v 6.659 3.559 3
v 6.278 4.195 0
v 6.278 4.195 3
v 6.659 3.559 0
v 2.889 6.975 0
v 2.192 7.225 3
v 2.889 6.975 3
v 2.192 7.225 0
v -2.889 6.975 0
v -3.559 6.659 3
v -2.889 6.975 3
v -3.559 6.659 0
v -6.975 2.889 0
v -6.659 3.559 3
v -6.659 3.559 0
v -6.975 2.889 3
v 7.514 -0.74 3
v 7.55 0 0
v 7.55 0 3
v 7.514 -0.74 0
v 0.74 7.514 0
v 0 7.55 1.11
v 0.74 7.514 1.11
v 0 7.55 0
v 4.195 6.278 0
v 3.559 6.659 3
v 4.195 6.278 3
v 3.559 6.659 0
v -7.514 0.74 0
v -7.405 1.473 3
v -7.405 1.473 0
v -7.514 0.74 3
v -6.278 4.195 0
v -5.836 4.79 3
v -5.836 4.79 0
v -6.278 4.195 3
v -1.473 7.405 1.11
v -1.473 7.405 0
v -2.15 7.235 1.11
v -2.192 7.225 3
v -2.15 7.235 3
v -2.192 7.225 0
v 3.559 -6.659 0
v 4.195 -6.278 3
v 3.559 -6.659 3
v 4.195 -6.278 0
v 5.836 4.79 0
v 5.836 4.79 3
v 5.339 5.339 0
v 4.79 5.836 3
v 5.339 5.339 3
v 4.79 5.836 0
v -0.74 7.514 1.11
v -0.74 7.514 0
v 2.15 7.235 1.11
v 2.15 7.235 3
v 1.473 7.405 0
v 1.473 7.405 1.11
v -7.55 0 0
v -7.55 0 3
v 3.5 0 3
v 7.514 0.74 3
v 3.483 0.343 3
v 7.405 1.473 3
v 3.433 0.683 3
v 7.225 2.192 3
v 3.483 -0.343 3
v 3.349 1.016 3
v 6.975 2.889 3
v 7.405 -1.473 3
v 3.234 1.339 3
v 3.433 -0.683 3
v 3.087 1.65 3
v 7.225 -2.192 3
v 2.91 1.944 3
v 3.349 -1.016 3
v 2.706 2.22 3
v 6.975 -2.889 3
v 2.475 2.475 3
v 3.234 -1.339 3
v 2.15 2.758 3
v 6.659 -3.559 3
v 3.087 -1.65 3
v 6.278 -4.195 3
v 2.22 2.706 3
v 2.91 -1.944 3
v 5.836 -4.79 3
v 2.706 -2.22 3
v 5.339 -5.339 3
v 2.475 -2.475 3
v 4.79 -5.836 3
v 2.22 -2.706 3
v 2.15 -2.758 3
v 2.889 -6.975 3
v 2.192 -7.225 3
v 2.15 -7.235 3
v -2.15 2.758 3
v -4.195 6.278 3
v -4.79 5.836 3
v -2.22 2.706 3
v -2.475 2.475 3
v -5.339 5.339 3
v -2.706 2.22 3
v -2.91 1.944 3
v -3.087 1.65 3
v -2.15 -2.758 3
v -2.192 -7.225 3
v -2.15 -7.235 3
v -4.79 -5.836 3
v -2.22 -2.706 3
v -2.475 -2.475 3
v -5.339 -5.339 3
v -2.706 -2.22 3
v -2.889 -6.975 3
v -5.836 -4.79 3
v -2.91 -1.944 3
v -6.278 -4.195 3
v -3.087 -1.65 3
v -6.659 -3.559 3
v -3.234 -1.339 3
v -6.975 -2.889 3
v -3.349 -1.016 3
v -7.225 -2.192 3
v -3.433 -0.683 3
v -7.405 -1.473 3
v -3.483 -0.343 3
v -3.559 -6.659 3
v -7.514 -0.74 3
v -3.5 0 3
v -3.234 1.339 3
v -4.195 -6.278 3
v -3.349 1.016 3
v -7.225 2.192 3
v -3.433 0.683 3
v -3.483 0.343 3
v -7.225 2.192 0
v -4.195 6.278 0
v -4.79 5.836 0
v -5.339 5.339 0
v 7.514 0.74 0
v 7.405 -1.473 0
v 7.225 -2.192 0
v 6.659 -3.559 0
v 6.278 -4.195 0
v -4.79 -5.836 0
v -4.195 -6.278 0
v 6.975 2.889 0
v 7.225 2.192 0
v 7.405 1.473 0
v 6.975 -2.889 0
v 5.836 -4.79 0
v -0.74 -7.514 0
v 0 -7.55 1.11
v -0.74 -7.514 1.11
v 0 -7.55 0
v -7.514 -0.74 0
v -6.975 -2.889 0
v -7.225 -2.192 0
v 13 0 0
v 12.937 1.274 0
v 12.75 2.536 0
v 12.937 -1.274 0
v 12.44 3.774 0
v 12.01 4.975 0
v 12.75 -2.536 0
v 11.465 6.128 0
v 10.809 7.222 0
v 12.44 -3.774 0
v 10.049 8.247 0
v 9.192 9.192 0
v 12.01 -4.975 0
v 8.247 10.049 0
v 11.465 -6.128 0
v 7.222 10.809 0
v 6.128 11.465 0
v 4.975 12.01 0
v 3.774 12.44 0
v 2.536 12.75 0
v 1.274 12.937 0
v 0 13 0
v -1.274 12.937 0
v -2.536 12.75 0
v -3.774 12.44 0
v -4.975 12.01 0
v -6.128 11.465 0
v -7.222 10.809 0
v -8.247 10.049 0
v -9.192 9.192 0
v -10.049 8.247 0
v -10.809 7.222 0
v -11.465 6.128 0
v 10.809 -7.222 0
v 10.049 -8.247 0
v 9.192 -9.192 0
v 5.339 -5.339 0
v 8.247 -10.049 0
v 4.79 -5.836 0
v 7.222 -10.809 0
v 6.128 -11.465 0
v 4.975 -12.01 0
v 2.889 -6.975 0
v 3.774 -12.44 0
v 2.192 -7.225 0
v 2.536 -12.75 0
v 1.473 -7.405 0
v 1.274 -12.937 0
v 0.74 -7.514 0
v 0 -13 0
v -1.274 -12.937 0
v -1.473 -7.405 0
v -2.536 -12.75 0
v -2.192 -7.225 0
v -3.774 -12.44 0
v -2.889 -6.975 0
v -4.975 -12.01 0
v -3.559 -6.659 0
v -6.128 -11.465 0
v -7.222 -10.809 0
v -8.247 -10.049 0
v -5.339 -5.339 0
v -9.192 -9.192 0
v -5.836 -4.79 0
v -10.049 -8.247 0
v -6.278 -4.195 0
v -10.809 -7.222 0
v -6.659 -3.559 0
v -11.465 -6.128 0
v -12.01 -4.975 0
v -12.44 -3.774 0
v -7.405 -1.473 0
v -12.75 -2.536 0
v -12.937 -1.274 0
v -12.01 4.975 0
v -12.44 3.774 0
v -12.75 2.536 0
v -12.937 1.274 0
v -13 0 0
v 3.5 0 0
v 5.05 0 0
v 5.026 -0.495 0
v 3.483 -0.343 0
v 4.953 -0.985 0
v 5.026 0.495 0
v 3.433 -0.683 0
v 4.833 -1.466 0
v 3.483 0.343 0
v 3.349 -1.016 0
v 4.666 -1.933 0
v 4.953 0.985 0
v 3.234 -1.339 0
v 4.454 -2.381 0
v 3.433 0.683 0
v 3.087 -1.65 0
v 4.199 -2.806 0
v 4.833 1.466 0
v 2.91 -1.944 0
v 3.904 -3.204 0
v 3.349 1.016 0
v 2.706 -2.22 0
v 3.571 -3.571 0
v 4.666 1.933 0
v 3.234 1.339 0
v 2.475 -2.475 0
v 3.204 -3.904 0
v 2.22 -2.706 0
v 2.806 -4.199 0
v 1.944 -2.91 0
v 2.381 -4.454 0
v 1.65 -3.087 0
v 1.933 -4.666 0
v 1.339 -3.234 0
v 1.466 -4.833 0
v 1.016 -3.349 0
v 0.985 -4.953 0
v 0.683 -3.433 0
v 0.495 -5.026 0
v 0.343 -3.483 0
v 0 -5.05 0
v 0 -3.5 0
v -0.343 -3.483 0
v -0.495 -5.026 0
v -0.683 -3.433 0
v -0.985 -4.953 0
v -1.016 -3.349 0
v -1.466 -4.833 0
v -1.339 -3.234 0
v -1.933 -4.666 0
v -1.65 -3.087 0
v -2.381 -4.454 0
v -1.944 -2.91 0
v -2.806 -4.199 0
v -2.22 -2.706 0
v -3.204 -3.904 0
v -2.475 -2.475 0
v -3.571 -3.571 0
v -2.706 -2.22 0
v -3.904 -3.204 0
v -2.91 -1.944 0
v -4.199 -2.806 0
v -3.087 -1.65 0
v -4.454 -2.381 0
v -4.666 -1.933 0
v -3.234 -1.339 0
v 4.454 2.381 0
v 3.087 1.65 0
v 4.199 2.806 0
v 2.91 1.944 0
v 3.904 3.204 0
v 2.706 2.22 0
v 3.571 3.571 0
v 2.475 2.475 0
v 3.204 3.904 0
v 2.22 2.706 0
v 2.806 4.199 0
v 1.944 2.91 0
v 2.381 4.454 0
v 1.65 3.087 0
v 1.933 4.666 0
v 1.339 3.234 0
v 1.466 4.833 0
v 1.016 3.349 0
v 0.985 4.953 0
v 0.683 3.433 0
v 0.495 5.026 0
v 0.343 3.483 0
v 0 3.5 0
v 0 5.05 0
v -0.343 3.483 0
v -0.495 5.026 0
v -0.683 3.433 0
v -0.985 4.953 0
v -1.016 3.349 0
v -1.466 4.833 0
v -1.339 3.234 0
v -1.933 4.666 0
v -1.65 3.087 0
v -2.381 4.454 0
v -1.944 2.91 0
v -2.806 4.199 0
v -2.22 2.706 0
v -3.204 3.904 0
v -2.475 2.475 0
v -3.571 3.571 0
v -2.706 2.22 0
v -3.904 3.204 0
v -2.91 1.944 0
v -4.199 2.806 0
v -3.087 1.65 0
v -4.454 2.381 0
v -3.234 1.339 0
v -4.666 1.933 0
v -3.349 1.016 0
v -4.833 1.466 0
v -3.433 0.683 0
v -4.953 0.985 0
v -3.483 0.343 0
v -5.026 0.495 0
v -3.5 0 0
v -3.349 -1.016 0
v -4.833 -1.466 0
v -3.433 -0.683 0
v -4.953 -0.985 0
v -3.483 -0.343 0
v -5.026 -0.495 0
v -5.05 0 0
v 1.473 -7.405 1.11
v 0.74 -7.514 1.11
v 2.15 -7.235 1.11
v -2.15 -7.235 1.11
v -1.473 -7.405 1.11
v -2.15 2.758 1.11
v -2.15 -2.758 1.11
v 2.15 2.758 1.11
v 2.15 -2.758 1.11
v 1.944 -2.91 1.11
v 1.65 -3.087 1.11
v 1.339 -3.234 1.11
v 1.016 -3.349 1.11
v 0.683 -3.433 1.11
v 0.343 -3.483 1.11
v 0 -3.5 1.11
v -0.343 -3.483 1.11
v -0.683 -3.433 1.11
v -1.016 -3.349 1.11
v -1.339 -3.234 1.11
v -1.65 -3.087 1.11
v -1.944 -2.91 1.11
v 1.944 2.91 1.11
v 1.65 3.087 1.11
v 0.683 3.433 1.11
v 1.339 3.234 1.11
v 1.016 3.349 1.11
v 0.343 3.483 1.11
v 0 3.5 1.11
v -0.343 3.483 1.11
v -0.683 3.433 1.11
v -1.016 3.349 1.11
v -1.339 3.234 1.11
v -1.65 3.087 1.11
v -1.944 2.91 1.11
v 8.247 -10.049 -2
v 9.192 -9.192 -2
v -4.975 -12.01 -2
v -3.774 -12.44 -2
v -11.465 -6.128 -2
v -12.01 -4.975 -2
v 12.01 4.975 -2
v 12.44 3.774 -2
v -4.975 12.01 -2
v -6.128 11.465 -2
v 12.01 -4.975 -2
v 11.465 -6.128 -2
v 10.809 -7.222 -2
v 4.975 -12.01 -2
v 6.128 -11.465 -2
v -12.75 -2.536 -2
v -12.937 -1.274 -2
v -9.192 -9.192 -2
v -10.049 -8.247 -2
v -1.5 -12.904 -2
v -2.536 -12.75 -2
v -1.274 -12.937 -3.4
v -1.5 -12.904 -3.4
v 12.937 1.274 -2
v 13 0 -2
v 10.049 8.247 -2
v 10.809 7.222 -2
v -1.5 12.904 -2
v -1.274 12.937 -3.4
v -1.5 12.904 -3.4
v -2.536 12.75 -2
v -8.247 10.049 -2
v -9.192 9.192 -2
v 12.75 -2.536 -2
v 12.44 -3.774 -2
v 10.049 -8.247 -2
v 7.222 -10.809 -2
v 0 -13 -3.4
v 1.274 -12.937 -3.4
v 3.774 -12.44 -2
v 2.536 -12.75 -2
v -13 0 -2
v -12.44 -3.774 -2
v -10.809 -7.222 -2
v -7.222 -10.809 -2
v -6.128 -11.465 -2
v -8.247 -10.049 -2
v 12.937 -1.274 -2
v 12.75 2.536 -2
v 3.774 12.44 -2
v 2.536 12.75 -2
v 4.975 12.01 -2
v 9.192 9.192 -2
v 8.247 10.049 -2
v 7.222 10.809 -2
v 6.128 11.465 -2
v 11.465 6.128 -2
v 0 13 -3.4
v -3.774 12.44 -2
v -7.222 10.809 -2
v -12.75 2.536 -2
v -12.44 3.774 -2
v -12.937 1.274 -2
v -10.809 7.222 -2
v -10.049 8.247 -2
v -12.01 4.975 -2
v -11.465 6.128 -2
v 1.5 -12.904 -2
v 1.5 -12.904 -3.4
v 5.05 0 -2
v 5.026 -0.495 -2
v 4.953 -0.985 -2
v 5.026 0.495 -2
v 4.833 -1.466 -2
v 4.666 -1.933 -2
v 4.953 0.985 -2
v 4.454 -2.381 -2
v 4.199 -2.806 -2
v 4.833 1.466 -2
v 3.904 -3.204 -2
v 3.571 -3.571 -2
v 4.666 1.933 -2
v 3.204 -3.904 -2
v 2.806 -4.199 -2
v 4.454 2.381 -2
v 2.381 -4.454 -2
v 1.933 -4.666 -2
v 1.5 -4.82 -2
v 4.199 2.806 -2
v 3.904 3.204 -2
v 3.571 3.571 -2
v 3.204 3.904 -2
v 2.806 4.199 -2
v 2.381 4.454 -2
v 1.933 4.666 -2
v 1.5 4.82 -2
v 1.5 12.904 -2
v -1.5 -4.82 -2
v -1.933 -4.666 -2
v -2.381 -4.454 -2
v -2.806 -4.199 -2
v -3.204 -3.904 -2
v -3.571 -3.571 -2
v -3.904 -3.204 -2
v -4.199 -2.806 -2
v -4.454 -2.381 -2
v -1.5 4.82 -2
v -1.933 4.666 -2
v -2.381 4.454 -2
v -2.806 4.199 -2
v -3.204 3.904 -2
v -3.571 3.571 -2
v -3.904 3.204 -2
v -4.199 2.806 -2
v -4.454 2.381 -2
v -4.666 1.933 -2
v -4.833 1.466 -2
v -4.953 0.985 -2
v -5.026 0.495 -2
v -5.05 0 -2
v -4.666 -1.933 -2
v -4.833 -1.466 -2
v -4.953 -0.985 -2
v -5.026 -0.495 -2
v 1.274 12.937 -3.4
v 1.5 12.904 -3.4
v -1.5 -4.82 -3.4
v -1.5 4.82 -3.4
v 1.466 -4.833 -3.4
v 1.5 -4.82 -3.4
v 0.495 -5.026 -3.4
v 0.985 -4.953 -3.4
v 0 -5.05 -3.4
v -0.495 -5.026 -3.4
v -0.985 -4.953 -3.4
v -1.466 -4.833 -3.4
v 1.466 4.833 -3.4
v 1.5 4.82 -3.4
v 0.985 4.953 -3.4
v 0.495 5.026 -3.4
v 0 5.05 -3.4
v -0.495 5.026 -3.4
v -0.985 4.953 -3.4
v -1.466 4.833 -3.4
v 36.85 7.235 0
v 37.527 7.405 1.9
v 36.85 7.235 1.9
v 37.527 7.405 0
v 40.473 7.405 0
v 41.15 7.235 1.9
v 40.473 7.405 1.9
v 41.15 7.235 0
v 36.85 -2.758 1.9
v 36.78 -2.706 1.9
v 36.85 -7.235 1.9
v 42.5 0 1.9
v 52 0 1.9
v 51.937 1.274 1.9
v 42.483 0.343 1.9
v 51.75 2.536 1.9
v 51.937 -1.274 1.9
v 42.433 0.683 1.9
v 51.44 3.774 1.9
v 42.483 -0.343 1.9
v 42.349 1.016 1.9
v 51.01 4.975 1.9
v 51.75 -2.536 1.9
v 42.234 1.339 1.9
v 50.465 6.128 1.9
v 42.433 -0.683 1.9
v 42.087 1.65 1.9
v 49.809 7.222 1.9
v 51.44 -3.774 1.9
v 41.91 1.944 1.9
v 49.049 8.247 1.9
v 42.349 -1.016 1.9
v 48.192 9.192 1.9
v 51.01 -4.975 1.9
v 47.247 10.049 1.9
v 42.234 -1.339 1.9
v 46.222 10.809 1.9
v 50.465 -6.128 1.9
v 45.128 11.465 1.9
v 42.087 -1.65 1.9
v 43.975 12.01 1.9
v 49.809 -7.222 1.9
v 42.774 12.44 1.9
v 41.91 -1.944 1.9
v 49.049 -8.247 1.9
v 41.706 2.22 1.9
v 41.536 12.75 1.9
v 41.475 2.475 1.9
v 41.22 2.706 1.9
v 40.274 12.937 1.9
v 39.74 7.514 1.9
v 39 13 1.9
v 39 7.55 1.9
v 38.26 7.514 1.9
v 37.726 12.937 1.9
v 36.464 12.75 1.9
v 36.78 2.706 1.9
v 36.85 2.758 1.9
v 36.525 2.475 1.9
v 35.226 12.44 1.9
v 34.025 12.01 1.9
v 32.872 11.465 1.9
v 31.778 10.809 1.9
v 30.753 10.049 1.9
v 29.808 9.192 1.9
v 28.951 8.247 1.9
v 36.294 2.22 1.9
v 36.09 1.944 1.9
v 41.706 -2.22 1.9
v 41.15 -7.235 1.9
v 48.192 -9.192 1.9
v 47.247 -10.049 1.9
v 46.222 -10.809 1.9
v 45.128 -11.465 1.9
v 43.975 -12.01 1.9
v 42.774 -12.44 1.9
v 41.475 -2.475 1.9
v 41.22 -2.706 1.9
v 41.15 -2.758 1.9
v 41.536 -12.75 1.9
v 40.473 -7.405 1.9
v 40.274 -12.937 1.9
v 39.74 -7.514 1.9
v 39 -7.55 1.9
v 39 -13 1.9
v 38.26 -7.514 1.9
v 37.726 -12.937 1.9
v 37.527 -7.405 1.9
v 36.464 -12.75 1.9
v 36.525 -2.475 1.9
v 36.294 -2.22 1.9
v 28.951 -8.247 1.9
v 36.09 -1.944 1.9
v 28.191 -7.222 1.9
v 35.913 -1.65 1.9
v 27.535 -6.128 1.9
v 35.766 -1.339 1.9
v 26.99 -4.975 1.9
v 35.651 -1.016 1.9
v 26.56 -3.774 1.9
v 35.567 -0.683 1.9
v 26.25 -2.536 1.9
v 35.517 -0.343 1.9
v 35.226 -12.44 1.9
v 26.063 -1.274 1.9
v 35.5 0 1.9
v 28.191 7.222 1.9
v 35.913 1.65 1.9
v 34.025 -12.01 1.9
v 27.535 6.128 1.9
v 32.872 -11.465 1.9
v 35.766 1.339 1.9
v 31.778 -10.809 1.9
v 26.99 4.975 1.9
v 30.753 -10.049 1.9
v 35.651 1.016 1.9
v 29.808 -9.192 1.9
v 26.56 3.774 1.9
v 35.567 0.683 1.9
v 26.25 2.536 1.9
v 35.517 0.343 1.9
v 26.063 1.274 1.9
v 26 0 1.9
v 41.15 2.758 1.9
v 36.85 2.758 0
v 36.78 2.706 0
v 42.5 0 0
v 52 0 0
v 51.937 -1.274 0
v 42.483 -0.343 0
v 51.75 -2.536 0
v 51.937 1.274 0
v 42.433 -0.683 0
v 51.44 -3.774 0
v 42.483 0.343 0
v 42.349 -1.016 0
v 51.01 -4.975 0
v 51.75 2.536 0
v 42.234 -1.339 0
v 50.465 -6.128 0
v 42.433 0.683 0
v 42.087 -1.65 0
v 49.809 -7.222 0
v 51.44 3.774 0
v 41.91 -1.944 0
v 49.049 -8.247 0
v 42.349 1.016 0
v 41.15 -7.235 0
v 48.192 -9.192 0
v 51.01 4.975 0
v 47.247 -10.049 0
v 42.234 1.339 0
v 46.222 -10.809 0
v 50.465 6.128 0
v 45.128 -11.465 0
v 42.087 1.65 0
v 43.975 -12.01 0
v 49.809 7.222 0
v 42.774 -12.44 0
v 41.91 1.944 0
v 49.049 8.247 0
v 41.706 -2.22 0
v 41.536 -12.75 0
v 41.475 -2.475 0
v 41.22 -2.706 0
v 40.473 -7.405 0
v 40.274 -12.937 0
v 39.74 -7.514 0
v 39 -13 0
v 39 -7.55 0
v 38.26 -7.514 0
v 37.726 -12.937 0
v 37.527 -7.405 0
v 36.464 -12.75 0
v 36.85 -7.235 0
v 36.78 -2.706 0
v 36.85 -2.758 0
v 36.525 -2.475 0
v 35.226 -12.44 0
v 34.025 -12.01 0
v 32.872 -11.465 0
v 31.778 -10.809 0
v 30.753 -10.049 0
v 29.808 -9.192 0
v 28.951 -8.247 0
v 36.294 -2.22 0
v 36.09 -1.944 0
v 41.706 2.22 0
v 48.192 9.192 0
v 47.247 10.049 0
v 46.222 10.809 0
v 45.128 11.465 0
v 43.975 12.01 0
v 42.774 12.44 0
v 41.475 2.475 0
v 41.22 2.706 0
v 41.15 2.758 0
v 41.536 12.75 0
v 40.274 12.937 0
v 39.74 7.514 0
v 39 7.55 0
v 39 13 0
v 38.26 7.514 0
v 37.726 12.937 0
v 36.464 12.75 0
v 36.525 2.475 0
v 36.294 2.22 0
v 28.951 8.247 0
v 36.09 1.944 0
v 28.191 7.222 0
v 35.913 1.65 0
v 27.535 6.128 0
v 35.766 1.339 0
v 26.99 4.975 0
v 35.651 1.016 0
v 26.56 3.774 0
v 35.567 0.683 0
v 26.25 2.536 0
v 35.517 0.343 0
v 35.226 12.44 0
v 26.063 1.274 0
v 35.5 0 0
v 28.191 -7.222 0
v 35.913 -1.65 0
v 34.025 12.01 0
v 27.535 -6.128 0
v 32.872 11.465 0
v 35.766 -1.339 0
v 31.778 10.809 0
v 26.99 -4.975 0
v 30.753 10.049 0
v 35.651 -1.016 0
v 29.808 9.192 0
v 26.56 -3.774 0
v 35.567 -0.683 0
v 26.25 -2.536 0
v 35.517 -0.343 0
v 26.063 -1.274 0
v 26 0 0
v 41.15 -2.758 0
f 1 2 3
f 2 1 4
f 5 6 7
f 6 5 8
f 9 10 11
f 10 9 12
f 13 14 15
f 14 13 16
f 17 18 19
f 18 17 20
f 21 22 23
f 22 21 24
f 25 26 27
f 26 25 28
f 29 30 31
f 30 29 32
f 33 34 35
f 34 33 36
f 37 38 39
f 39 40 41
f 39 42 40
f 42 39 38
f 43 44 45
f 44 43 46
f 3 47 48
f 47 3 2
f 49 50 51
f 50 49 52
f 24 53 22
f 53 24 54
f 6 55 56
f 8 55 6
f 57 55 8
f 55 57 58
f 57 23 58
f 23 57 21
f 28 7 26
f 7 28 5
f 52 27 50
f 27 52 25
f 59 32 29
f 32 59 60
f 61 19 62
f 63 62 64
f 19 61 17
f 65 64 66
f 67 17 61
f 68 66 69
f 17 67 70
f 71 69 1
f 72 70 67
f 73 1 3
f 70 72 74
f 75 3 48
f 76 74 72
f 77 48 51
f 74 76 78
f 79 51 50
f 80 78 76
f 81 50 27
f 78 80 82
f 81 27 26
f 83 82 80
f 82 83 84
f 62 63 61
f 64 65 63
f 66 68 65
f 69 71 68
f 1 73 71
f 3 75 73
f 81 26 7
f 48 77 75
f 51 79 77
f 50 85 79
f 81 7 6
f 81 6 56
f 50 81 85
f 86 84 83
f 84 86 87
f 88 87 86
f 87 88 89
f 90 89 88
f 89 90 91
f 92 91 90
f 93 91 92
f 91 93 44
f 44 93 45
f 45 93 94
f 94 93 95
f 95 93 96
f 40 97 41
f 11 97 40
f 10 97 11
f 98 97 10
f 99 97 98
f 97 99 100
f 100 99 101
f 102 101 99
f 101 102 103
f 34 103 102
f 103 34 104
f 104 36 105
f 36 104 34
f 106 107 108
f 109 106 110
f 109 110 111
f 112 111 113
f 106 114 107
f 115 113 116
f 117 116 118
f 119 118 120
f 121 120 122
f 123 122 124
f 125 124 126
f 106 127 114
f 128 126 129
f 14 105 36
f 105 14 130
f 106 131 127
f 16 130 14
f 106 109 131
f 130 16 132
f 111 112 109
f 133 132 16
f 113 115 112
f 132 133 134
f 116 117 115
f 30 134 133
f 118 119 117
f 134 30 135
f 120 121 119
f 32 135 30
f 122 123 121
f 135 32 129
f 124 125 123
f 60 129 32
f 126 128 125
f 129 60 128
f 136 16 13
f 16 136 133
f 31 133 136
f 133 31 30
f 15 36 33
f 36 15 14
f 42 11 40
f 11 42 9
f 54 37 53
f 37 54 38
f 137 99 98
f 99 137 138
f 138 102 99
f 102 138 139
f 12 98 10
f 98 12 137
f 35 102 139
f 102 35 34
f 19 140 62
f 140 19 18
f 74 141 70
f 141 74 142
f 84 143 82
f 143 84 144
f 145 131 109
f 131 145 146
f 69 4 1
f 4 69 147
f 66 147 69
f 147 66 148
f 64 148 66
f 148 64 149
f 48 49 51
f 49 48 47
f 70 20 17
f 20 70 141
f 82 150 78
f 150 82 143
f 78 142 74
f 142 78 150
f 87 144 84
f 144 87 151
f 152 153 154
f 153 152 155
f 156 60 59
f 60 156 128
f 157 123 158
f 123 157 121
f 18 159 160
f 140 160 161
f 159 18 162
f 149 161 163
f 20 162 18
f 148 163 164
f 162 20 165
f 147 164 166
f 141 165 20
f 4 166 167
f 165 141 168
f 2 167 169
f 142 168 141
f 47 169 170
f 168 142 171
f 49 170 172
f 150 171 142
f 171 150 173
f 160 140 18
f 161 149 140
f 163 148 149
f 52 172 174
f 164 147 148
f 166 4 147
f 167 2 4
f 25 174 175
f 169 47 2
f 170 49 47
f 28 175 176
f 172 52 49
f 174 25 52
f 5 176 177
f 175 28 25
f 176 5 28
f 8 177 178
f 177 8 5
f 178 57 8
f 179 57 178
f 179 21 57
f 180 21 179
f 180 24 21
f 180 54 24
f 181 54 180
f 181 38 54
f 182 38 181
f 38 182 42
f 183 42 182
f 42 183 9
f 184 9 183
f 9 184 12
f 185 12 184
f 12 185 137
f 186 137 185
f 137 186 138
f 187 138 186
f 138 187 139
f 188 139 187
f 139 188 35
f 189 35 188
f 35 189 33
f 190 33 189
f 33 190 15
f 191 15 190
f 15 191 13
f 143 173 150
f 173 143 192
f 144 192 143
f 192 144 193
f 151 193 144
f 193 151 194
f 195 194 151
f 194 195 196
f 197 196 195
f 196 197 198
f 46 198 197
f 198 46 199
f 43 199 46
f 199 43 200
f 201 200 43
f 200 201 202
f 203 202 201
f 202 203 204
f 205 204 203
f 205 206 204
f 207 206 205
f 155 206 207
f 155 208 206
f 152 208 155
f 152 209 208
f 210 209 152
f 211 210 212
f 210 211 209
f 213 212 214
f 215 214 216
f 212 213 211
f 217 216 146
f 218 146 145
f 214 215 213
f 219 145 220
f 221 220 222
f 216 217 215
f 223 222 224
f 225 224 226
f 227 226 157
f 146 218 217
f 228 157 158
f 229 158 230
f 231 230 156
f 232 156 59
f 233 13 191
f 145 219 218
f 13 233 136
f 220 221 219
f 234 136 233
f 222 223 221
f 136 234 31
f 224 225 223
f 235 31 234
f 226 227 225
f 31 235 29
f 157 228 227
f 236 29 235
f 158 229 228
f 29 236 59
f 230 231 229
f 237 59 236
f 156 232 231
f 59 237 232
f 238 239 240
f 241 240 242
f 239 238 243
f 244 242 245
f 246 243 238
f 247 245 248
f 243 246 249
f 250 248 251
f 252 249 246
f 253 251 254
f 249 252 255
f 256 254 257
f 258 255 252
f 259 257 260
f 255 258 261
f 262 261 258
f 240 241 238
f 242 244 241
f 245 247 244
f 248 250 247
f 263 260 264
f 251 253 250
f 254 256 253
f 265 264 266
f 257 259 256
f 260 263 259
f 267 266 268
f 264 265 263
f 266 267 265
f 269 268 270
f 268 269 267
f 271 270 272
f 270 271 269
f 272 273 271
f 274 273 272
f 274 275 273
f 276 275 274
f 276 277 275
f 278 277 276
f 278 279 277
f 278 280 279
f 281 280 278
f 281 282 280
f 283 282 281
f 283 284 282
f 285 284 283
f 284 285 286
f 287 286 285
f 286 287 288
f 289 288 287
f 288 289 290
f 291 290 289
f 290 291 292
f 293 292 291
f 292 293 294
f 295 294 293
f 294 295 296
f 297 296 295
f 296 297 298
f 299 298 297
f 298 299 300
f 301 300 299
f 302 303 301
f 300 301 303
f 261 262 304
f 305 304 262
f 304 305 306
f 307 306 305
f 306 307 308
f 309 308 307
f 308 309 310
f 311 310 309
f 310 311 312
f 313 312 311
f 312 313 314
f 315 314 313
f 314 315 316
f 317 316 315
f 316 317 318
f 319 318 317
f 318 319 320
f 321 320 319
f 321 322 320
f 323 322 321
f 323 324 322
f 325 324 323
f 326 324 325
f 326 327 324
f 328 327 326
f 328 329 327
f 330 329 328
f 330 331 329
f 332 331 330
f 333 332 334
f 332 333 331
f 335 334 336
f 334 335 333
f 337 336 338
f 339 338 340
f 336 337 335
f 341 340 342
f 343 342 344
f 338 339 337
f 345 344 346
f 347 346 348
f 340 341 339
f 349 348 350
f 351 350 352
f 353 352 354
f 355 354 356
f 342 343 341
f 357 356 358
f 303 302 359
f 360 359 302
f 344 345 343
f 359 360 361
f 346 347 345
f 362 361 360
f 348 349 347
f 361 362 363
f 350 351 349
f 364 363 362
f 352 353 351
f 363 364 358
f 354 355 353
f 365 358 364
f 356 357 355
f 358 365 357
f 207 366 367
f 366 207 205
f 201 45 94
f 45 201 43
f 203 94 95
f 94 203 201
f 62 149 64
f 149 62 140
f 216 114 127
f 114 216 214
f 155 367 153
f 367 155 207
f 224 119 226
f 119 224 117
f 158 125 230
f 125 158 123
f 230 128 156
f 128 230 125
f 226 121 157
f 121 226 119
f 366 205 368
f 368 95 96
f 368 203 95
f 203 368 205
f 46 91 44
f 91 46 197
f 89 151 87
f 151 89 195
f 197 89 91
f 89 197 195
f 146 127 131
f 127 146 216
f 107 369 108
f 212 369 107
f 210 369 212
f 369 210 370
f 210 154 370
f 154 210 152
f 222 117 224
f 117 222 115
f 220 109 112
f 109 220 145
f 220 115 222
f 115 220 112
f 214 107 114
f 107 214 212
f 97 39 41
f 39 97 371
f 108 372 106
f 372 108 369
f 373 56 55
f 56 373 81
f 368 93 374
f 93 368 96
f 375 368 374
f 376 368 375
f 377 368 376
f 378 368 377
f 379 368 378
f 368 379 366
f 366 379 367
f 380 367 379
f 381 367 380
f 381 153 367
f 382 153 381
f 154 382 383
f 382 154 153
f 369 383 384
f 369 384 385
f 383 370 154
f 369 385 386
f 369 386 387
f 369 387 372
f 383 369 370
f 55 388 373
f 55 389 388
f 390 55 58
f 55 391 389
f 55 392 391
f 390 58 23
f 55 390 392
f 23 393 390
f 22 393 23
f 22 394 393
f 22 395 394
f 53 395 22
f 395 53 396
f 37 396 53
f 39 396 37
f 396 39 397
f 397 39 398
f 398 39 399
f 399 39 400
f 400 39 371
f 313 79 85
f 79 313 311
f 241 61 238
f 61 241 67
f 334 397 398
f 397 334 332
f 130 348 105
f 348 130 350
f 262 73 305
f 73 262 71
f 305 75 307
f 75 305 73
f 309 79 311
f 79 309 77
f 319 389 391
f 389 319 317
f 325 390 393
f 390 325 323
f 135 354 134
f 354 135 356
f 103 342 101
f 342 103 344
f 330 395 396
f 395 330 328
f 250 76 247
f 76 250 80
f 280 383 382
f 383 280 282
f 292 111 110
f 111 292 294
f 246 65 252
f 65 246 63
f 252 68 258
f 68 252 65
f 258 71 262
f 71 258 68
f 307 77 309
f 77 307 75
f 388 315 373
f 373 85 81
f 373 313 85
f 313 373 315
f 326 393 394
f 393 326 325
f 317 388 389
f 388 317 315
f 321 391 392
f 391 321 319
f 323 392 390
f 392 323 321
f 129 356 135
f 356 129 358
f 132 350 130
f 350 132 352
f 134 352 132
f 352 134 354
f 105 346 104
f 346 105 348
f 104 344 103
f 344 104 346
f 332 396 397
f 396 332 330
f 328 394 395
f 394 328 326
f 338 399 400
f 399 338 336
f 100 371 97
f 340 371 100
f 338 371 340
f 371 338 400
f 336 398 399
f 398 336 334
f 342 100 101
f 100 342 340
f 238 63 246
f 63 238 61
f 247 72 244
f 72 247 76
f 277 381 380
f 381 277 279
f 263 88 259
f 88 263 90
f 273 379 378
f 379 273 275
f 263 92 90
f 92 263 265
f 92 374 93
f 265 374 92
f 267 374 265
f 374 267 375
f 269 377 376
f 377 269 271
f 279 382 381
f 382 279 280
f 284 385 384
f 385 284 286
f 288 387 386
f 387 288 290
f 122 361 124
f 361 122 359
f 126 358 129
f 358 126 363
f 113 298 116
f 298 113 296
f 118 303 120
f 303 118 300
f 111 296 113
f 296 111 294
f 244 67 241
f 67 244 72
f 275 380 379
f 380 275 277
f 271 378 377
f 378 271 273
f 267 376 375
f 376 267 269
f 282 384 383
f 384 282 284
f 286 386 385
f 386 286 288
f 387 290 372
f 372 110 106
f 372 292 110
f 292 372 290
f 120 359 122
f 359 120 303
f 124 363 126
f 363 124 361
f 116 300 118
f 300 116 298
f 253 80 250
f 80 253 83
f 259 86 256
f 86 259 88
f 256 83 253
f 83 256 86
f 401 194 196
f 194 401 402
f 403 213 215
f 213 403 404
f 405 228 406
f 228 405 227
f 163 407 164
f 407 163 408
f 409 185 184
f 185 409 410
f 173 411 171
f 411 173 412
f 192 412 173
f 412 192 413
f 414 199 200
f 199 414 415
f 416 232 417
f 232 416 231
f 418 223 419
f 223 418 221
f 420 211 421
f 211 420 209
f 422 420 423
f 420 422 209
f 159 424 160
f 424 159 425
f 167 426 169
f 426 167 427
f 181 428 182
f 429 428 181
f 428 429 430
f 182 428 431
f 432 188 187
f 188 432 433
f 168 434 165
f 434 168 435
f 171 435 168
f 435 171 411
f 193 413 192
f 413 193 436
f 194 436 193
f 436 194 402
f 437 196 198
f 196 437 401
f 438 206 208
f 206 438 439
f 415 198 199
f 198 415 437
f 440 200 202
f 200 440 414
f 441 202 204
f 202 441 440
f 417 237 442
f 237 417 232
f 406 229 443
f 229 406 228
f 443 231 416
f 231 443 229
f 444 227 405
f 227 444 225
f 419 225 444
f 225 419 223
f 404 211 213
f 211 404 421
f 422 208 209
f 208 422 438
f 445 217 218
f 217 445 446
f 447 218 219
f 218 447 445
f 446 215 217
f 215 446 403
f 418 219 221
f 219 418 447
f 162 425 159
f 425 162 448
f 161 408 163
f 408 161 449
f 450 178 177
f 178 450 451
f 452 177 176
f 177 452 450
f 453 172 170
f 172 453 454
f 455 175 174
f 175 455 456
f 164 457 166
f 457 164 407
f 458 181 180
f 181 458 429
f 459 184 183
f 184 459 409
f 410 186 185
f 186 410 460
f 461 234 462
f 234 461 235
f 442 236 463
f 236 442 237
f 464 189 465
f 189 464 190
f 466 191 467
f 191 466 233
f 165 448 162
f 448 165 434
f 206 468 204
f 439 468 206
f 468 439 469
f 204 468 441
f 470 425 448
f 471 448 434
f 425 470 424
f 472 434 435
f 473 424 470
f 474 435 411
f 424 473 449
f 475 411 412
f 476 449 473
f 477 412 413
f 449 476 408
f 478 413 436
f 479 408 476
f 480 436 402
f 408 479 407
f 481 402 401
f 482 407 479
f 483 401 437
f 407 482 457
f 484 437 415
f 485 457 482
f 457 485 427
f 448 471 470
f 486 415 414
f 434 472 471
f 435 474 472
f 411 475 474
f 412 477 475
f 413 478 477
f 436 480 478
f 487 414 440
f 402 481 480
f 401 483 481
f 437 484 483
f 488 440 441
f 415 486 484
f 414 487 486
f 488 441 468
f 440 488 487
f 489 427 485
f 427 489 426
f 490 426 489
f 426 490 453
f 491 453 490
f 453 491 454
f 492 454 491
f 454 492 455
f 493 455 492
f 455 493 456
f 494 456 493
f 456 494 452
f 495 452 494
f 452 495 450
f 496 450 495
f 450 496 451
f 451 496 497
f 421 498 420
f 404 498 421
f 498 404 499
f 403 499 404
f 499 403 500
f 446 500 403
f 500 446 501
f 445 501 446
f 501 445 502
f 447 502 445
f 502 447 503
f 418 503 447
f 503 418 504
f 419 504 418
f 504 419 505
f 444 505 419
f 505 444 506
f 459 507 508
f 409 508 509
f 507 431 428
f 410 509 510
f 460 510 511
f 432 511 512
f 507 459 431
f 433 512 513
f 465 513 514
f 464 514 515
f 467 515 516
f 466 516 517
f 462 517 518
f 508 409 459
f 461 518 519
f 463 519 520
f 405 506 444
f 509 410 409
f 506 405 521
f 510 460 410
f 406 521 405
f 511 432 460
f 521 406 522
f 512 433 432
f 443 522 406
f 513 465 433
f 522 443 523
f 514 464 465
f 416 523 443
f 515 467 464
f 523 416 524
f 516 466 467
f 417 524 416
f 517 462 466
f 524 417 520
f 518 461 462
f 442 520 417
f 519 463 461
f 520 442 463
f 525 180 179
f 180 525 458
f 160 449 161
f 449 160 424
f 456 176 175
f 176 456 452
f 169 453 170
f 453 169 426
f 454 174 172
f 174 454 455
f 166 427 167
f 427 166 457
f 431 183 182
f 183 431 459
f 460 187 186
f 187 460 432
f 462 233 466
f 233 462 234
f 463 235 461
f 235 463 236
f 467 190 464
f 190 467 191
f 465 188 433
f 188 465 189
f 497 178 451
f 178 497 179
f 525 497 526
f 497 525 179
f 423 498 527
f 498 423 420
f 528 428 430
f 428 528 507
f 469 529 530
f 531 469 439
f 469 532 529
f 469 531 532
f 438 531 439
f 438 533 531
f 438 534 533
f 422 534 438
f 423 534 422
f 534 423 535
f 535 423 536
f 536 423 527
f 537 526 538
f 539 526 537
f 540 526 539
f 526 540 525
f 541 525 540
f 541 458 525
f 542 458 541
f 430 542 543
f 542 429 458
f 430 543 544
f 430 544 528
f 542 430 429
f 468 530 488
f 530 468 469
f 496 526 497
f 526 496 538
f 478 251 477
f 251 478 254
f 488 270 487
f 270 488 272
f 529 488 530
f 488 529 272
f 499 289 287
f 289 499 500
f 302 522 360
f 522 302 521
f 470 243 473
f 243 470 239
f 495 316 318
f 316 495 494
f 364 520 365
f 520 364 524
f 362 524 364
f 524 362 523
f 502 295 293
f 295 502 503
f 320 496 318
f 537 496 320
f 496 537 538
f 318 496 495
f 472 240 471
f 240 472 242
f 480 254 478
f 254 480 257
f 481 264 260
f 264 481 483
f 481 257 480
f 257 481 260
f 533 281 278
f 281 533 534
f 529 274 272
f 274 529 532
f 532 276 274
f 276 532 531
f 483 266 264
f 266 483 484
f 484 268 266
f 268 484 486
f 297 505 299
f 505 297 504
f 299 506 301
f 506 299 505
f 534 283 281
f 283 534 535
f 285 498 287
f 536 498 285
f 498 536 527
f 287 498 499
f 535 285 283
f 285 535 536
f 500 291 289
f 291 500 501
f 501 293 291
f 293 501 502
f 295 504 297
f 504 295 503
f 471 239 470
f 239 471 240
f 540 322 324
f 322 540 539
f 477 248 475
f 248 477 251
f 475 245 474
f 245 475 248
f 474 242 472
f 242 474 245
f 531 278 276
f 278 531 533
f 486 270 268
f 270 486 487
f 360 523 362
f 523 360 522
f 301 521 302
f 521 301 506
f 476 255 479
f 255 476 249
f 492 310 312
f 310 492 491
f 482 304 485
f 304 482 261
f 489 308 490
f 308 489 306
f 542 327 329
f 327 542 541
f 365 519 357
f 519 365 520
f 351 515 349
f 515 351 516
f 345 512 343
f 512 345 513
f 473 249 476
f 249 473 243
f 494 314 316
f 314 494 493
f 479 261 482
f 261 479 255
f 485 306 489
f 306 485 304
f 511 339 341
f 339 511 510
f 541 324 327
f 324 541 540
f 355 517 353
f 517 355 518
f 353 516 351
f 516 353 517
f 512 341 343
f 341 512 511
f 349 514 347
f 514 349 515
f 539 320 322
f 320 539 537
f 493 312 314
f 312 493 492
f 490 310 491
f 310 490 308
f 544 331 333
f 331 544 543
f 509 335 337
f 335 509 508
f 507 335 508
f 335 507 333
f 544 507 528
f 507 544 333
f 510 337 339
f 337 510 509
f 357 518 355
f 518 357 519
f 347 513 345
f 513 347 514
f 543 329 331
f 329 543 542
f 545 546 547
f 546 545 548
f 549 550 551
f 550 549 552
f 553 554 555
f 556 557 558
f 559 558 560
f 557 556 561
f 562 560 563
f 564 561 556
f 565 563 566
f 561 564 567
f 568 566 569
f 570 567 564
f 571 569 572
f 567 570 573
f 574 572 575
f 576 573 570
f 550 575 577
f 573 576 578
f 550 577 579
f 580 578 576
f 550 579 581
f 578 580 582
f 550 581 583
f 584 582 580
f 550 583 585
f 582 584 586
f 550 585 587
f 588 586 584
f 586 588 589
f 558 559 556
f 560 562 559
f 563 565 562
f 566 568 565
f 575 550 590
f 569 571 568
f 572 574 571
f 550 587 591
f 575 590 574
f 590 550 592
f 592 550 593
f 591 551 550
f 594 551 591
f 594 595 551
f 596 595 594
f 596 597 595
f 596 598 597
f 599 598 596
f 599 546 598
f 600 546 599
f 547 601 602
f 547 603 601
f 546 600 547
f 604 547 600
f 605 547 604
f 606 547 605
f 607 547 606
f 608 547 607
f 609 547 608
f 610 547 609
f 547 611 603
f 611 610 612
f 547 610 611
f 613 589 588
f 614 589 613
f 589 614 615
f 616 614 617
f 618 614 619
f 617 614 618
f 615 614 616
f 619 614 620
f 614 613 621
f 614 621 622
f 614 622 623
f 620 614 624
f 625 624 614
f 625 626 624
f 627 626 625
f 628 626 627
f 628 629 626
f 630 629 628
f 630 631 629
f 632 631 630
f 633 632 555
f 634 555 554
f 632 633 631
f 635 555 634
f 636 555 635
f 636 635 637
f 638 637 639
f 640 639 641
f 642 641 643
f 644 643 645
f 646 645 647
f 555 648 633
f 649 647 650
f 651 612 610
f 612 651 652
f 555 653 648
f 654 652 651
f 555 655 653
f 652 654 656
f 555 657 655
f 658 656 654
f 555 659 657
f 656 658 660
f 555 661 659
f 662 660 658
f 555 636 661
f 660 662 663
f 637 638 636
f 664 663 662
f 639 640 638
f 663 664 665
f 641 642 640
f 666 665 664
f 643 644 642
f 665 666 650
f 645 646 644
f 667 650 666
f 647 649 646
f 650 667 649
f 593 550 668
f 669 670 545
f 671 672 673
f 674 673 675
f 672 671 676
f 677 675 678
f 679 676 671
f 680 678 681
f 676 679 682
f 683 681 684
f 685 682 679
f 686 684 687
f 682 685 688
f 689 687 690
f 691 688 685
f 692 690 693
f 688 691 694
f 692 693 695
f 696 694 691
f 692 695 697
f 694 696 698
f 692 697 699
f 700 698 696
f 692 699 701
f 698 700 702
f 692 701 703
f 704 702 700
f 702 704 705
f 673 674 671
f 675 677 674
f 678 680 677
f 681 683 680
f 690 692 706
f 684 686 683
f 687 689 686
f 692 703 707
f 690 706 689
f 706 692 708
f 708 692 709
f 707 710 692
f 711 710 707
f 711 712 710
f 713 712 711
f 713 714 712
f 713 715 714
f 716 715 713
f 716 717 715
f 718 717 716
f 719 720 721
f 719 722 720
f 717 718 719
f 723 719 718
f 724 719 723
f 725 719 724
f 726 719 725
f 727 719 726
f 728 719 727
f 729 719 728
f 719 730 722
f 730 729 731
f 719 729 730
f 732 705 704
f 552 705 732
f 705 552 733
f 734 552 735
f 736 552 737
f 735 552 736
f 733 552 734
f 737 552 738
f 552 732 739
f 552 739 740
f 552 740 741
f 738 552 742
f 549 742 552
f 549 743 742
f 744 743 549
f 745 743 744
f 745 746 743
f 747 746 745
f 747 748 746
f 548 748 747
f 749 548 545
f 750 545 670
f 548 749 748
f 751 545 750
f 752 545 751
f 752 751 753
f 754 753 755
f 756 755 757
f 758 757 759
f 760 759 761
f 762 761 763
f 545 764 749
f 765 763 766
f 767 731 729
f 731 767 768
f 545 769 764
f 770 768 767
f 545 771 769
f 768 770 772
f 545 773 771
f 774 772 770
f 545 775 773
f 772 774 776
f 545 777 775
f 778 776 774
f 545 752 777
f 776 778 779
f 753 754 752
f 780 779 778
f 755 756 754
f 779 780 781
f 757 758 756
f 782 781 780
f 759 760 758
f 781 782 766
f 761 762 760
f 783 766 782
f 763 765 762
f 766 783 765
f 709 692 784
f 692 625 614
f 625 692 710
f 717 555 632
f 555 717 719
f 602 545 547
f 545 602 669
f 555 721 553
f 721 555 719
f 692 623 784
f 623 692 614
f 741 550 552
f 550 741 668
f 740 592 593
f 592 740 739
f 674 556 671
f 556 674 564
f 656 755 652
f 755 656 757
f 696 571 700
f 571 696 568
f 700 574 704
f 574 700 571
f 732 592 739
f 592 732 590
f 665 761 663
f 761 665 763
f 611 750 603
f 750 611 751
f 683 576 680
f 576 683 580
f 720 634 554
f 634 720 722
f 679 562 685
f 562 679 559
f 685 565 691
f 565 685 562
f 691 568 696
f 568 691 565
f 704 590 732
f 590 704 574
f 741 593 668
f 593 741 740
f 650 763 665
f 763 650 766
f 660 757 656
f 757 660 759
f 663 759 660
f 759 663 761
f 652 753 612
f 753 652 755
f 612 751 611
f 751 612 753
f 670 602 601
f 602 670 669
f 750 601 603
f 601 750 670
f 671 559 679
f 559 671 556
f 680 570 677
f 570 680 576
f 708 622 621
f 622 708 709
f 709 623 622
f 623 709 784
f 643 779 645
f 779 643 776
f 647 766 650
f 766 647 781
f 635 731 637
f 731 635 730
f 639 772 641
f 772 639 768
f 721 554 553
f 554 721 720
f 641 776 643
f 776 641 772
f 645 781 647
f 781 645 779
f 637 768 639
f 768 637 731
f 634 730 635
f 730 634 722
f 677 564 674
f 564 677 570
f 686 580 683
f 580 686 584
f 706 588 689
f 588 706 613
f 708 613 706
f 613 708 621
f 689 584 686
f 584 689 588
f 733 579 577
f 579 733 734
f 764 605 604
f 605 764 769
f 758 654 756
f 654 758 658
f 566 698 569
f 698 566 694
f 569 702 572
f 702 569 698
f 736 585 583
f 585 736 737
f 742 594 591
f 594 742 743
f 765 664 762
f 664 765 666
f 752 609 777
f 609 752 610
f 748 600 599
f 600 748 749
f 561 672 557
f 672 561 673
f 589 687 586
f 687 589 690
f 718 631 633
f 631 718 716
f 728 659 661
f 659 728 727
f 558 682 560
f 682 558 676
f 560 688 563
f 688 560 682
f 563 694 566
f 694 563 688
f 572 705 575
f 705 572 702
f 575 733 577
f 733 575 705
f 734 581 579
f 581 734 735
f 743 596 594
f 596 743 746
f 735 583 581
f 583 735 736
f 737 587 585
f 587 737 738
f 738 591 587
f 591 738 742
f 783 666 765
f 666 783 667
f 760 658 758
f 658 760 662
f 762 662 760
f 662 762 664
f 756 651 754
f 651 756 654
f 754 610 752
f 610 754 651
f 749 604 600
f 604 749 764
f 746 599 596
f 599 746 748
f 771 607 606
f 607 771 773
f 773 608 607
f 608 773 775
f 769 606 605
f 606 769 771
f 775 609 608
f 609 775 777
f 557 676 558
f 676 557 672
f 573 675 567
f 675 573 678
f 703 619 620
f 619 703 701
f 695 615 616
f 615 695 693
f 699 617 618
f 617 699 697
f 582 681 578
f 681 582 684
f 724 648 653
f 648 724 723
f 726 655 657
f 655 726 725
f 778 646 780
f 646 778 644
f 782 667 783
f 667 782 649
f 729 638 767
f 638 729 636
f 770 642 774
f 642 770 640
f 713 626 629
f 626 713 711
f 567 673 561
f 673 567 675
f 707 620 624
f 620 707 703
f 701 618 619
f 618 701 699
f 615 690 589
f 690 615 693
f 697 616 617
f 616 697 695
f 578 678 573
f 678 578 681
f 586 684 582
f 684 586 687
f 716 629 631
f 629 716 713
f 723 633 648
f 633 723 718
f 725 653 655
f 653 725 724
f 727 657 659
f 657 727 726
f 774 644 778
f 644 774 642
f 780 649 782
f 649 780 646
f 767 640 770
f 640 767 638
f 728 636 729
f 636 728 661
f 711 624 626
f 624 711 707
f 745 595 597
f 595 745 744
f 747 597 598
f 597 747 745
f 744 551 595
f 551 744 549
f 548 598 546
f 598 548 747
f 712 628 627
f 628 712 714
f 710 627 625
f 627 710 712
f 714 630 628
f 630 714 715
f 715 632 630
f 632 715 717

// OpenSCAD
// Diameter of the stem on the ballhead
Stem_Diameter = 15.1;

// Diameter of the screw hole in the ballhead stem
Stem_Hole_Diameter = 7;

// Width of the stem notch
Stem_Notch_Width = 4.3;

// Height of the stem notch
Stem_Notch_Height = 1.9;

// Height of the ballhead mating plate
Stem_Mating_Height = 3;

// Diameter of the screw hole in the lock plate
Plate_Hole_Diameter = 10.1;

// Width of the lock plate notch
Plate_Notch_Width = 3;

// Depth of the lock plate notch
Plate_Notch_Depth = 1.4;

// Mating surface diameter
Plate_Mating_Diameter = 26;

// Height of the adapter mating plate
Plate_Mating_Height = 2;

/* [Hidden] */
$fn = 64;
f = 0.01;
df = f*2;

module utebit_plate_adapter() {
    difference() {
        union() {
            cylinder(d = Plate_Mating_Diameter, h = Plate_Mating_Height);
            translate([-Plate_Notch_Width/2, -Plate_Mating_Diameter/2, Plate_Mating_Height])
                cube([Plate_Notch_Width, Plate_Mating_Diameter, Plate_Notch_Depth]);
        }
        translate([0, 0, -f])
            cylinder(d = Plate_Hole_Diameter, h = Plate_Mating_Height + Plate_Notch_Depth + df);
        difference() {
            cylinder(d = Plate_Mating_Diameter * 1.1, h = Plate_Mating_Height + Plate_Notch_Depth + df);
            cylinder(d = Plate_Mating_Diameter, h = Plate_Mating_Height + Plate_Notch_Depth + df);
        }
    }
}

module geekoto_ballhead_adapter() {
    difference() {
        difference() {
            cylinder(d = Stem_Diameter, h = Stem_Mating_Height);
            translate([-Stem_Notch_Width/2, -Stem_Diameter/2, Stem_Mating_Height - Stem_Notch_Height + f])
                cube([Stem_Notch_Width, Stem_Diameter, Stem_Notch_Height]);
        }
        translate([0, 0, -f])
            cylinder(d = Stem_Hole_Diameter, h = Stem_Notch_Height + Stem_Mating_Height + df);         
    }
}

module geekoto_ballhead_adapter_low_profile() {
    difference() {
        difference() {
            cylinder(d = Stem_Diameter, h = Stem_Notch_Height);
            translate([-Stem_Notch_Width/2, -Stem_Diameter/2, -f])
                cube([Stem_Notch_Width, Stem_Diameter, Stem_Notch_Height + df]);
        }
        translate([0, 0, -f])
            cylinder(d = Stem_Hole_Diameter, h = Stem_Notch_Height + Stem_Mating_Height + df);         
    }
    difference() {
        cylinder(d = Plate_Mating_Diameter, h = Stem_Notch_Height);
        translate([0, 0, -f])
            cylinder(d = Stem_Diameter, h = Stem_Notch_Height + df);
    }
        
}

module geekoto_ballhead_to_utebit_plate_adapter() {
    geekoto_ballhead_adapter();
    rotate([180, 0, 0])
        utebit_plate_adapter();
}

geekoto_ballhead_to_utebit_plate_adapter();
translate([Plate_Mating_Diameter * 1.5, 0, 0])
    geekoto_ballhead_adapter_low_profile();
